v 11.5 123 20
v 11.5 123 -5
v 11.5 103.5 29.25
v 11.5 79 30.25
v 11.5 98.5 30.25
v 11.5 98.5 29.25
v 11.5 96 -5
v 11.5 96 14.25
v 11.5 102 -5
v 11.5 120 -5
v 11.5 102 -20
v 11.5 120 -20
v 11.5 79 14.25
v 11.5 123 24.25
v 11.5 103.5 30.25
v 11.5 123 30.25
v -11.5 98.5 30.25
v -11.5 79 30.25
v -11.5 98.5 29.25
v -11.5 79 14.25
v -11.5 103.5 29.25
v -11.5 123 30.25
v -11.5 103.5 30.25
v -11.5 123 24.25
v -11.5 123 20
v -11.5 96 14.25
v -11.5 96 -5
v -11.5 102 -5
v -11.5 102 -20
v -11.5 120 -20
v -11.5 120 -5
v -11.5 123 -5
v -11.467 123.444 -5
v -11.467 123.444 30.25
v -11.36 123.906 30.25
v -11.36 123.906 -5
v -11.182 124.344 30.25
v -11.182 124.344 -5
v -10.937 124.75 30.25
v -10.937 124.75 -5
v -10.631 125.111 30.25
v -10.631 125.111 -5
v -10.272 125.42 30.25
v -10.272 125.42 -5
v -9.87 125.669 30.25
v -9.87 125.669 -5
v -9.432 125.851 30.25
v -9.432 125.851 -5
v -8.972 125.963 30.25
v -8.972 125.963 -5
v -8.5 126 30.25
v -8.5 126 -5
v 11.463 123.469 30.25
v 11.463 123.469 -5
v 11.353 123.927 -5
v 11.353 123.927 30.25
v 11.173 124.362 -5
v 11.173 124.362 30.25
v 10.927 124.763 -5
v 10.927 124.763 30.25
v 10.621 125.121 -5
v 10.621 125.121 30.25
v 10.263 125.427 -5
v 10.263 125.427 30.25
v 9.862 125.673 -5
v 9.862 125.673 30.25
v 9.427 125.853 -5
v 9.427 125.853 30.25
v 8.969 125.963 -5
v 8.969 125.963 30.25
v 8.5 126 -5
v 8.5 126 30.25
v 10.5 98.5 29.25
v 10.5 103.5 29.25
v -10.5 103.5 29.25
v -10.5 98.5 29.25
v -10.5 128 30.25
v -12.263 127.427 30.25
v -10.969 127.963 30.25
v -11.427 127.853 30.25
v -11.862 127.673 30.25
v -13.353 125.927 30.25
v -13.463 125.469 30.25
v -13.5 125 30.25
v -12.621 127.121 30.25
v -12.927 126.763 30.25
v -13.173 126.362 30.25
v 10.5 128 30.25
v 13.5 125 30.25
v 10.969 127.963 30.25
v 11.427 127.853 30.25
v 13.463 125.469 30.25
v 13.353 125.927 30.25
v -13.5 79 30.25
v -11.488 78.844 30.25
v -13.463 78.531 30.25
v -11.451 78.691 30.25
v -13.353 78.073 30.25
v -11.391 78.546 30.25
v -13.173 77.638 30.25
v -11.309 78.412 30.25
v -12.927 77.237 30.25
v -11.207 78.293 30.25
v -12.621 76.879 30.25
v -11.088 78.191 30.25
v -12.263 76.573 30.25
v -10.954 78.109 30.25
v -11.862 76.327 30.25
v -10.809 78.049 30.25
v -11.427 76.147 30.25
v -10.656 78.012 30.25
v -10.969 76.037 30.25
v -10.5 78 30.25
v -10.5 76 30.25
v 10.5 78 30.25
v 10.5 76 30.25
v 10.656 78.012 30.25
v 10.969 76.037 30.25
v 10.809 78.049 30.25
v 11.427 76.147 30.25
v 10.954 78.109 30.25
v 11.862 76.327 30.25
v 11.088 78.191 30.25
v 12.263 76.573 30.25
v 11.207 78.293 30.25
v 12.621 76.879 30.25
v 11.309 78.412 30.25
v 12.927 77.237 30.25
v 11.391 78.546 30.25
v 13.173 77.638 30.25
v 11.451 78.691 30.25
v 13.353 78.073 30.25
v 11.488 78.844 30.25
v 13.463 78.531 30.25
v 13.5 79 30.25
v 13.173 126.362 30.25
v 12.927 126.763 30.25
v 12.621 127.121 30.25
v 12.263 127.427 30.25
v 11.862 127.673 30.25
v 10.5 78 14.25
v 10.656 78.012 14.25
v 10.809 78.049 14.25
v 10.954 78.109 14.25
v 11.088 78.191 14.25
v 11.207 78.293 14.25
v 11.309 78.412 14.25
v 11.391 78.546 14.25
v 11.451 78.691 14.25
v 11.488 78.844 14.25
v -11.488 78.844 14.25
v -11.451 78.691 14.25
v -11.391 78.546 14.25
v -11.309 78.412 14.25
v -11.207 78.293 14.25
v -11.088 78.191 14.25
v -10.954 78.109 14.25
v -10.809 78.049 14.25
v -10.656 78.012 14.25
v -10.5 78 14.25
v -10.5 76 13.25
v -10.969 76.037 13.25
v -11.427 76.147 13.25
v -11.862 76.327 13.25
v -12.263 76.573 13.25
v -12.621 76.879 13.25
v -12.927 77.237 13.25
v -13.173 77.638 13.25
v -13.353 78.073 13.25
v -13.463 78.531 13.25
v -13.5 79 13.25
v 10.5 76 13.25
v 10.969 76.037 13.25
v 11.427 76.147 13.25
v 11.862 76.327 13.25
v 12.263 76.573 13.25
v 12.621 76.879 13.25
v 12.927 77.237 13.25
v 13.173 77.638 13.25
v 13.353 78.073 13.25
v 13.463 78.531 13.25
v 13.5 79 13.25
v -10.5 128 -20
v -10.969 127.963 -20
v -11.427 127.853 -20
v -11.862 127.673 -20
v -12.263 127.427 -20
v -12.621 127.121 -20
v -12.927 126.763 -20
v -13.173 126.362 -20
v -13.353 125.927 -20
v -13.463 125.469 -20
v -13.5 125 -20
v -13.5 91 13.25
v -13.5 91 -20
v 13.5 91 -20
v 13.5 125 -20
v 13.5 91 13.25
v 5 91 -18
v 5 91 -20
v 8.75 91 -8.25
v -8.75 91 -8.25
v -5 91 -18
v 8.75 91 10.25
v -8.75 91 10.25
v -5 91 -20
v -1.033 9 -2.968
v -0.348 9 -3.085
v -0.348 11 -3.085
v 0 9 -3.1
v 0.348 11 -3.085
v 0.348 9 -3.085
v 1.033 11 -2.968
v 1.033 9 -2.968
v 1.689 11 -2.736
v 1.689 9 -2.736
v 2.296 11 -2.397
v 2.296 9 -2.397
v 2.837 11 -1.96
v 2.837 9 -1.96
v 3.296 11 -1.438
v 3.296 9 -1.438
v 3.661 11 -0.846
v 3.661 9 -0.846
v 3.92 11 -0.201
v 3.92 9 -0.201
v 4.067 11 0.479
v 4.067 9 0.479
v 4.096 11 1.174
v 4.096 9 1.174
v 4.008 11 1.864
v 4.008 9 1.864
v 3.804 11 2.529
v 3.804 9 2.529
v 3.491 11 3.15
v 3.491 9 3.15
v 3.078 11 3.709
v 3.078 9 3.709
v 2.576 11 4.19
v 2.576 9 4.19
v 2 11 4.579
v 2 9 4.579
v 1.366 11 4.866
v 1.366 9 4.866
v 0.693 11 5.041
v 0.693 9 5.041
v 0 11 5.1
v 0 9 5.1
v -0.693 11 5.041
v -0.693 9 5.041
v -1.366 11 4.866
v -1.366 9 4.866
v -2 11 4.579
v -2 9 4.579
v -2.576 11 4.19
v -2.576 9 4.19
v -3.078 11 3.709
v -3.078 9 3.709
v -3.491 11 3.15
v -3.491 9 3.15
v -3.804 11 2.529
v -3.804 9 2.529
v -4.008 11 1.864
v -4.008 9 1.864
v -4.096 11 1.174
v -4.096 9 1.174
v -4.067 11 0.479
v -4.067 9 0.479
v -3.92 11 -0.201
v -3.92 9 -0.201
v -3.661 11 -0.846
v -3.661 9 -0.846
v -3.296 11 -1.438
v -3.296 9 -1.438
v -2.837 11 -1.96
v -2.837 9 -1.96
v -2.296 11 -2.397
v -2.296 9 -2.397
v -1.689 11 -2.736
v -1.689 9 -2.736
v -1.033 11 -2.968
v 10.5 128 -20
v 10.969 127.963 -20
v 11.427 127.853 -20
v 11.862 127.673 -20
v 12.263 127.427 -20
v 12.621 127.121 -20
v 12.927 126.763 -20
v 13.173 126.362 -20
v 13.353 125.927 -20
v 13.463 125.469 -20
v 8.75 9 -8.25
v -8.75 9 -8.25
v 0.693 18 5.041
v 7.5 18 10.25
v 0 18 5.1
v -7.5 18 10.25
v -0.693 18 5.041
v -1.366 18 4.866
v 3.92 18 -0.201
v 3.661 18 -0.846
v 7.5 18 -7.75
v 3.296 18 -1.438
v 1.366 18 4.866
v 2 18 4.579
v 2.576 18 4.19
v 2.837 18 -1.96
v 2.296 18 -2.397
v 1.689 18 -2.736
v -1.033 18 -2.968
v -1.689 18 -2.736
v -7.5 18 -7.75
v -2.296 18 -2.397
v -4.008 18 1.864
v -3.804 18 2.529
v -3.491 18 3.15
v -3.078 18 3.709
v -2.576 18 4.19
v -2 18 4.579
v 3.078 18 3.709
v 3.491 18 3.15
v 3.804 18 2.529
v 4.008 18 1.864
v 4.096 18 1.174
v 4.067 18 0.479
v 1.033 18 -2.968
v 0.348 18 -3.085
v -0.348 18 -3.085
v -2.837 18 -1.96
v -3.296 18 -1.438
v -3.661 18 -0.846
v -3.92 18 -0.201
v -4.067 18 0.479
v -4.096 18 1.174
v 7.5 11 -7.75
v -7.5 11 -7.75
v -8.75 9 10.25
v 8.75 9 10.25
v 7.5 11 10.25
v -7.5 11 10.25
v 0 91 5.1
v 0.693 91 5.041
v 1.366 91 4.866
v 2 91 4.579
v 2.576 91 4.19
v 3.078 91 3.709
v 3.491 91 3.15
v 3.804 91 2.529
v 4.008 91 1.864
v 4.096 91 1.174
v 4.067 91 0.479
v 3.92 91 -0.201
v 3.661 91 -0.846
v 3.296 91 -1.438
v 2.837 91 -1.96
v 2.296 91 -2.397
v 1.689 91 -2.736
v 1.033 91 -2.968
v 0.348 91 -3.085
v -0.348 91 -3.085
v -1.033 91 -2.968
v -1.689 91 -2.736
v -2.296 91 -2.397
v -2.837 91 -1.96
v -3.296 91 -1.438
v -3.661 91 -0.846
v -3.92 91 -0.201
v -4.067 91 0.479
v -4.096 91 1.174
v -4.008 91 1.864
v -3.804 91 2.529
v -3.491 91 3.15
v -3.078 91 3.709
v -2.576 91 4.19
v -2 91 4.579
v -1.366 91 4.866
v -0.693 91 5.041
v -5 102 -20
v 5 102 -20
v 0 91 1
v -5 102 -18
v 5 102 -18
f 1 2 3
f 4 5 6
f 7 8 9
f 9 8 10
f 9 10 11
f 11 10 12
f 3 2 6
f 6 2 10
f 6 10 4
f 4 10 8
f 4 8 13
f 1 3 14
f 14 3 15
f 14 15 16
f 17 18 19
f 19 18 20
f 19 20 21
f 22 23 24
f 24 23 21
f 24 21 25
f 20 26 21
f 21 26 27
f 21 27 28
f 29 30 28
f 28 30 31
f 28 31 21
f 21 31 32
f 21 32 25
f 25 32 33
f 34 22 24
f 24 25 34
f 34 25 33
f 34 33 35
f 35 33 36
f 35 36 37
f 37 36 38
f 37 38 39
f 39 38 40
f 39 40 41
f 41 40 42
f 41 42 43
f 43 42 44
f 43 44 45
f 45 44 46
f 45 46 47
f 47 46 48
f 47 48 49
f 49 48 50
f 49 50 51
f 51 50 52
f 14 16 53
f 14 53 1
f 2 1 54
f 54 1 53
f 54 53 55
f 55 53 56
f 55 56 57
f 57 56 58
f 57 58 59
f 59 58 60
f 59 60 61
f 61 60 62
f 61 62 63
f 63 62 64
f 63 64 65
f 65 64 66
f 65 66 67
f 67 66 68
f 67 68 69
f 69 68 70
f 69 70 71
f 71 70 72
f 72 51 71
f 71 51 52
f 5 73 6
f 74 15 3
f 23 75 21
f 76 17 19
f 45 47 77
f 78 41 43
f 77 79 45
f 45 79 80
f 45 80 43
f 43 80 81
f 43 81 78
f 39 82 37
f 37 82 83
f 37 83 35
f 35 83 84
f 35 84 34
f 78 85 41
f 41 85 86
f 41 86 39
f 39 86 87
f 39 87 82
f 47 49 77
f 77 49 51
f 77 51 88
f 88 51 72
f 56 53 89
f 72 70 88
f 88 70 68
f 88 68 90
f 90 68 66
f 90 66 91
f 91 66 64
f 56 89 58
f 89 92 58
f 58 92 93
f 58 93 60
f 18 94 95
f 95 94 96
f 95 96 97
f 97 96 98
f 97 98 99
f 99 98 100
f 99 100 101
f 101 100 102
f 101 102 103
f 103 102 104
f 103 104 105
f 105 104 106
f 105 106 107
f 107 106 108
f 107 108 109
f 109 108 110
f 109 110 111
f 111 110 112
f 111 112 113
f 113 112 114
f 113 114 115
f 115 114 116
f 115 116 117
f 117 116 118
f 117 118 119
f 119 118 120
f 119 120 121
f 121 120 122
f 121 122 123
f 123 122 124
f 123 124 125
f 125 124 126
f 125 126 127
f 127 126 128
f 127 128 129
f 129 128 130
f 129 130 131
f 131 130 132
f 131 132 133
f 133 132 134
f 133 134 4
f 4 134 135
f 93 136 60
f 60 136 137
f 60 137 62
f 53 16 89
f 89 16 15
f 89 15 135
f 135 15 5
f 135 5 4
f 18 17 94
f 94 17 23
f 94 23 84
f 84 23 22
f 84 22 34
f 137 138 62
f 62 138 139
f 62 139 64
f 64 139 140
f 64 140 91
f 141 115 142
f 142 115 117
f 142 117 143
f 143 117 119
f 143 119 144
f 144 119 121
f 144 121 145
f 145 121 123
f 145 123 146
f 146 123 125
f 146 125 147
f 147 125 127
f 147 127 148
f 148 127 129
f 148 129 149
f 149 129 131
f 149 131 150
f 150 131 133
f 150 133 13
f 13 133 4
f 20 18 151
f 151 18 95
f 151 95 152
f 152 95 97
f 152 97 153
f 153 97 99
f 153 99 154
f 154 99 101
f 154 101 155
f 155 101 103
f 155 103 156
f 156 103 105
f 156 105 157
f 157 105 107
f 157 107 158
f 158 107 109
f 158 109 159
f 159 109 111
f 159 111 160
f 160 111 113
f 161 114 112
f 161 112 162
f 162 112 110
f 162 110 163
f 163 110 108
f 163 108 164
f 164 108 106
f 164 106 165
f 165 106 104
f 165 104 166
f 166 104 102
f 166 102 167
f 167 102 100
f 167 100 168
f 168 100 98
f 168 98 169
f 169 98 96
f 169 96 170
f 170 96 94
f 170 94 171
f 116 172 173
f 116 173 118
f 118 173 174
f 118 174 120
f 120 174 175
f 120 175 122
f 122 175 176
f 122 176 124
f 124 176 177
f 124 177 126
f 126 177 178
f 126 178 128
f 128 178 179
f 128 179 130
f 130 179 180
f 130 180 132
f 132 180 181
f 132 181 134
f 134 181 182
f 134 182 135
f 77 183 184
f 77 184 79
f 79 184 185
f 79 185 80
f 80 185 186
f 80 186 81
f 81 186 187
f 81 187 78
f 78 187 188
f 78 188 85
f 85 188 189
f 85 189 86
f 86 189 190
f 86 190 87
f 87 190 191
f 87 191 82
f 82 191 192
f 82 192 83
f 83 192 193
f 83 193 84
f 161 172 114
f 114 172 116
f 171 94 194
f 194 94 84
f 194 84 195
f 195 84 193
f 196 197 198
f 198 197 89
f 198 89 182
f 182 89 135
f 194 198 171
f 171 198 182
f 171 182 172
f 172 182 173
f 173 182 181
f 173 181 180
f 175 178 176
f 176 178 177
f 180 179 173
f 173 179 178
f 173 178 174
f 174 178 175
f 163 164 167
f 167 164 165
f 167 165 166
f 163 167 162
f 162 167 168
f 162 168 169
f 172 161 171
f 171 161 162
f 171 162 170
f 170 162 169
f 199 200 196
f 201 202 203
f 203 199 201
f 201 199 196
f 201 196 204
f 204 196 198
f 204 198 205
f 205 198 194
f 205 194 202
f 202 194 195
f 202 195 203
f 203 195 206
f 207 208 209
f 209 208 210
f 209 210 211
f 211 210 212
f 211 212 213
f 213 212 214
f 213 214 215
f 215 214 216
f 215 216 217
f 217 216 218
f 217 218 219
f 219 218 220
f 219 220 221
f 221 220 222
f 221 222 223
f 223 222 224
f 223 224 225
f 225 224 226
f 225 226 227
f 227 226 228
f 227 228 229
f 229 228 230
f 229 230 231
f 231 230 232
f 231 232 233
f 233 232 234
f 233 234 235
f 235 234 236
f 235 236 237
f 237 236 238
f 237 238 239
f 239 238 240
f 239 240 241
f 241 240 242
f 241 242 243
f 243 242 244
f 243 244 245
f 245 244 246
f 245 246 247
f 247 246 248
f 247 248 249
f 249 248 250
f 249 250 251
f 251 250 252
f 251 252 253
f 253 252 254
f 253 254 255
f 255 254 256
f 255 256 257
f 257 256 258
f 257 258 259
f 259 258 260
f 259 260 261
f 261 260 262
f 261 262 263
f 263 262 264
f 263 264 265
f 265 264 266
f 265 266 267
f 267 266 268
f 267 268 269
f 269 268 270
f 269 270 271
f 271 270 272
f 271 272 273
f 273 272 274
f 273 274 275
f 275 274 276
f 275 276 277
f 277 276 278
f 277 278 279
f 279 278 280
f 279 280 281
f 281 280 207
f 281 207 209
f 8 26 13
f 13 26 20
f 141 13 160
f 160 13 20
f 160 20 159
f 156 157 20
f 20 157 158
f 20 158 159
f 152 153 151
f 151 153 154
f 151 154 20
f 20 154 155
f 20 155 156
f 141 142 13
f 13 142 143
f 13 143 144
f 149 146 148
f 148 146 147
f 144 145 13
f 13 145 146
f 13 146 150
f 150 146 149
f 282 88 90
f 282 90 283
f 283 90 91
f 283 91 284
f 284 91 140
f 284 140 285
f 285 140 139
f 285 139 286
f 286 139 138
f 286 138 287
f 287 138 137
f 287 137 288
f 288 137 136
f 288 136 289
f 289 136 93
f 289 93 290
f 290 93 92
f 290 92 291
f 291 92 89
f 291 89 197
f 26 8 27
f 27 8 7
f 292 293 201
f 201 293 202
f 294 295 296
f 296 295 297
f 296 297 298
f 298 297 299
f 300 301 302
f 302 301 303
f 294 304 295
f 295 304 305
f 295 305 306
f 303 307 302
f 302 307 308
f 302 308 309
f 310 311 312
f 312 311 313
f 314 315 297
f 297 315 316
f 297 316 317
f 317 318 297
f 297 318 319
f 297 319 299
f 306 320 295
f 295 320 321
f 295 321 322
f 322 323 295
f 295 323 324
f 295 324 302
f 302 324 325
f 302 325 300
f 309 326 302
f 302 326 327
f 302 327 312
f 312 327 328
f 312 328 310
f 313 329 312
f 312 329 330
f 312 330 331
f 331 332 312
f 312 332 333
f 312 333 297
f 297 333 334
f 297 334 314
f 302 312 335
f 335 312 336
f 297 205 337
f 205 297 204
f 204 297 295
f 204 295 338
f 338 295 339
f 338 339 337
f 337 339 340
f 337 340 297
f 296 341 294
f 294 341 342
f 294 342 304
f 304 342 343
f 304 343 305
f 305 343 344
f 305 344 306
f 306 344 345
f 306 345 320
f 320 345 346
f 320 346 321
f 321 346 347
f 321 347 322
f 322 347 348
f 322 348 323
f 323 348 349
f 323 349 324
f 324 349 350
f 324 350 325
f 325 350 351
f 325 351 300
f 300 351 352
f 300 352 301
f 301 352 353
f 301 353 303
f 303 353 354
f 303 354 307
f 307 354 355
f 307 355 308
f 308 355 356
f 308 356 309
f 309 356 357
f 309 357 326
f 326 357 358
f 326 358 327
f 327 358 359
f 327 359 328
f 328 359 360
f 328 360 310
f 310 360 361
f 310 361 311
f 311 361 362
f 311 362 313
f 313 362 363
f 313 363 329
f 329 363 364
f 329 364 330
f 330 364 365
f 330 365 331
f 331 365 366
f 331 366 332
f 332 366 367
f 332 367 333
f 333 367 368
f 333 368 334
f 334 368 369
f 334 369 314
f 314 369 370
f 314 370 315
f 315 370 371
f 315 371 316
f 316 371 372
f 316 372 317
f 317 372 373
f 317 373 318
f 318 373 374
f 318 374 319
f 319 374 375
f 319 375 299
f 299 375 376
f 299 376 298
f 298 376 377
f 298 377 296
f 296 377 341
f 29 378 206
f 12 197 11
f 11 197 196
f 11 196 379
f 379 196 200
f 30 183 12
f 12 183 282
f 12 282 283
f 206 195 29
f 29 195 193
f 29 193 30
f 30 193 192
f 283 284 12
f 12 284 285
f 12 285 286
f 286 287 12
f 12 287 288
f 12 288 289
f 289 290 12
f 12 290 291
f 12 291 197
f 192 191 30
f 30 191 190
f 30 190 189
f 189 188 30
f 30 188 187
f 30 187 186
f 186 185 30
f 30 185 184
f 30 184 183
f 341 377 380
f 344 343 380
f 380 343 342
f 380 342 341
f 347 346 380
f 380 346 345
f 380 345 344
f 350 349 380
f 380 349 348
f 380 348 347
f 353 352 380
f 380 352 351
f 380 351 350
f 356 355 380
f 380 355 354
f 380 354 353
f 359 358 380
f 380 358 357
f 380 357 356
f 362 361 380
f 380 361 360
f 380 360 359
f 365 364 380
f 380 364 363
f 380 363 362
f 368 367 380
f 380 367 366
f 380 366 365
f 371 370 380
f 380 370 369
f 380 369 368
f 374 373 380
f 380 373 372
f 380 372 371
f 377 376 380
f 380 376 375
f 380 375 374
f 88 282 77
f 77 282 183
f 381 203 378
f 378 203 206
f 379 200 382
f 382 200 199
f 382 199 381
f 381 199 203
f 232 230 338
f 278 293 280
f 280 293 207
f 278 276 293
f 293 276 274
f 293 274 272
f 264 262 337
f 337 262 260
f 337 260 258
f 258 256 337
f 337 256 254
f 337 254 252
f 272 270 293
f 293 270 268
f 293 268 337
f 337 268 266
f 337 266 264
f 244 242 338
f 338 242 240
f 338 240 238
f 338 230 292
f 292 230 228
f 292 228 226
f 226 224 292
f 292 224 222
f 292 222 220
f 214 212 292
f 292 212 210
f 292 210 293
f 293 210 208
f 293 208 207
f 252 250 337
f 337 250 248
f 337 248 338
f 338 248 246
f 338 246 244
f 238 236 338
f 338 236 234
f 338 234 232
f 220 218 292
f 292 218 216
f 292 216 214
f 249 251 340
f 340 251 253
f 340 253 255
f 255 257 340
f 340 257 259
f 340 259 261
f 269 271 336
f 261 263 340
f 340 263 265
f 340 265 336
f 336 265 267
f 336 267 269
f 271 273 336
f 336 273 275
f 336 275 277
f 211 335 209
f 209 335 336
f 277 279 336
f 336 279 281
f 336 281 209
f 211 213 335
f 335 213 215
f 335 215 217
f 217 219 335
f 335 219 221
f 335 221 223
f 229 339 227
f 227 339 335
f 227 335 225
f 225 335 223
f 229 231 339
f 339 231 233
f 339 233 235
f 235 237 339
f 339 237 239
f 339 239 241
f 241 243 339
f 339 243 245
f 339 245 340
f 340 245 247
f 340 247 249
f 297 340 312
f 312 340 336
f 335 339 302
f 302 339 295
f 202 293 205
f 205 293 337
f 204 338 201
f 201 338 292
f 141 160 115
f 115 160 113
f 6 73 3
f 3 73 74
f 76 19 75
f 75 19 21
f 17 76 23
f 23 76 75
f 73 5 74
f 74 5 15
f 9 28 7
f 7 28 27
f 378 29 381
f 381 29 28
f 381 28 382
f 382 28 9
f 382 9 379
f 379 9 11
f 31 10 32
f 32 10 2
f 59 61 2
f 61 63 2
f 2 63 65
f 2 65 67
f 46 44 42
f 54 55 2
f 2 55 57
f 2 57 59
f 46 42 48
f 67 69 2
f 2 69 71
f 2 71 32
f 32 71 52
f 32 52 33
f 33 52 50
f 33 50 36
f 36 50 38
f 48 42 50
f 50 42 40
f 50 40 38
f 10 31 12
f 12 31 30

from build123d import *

# Parameters (mm, degrees)
SKETCH1_W                = 20
SKETCH1_H                = 20
SKETCH1_R                = 4
SKETCH1_H_2              = 10
BOSS_EXTRUDE2_DEPTH      = 2
SKETCH2_W                = 45
SKETCH2_H                = 60
SKETCH2_W_2              = 43
SKETCH2_H_2              = 58
BOSS_EXTRUDE3_DEPTH      = 4
SKETCH6_W                = 45
SKETCH6_H                = 30
BOSS_EXTRUDE4_DEPTH      = 2
CUT_EXTRUDE4_DEPTH       = 4
BOSS_EXTRUDE5_DEPTH      = 7
BOSS_EXTRUDE5_2_DEPTH    = 7
BOSS_EXTRUDE5_3_DEPTH    = 7
SKETCH11_W               = 19
SKETCH11_H               = 19
BOSS_EXTRUDE6_DEPTH      = 2
SKETCH14_R               = 4
CUT_EXTRUDE7_DEPTH       = 19
SKETCH15_W               = 1
SKETCH15_H               = 17
SKETCH15_H_2             = 1
BOSS_EXTRUDE7_DEPTH      = 80
SKETCH16_W               = 16.5
SKETCH16_H               = 16.5
BOSS_EXTRUDE8_DEPTH      = 80
SKETCH17_R               = 4
CUT_EXTRUDE8_DEPTH       = 193
SKETCH18_W               = 105.72576136
SKETCH18_H               = 91
CUT_EXTRUDE9_DEPTH       = 193
SKETCH19_W               = 10.5
SKETCH19_H               = 2
CUT_EXTRUDE10_DEPTH      = 193
SKETCH20_W               = 16.5
SKETCH20_H               = 16.5
SKETCH20_R               = 4
BOSS_EXTRUDE10_DEPTH     = 80
SKETCH21_W               = 16.5
SKETCH21_H               = 16.5
SKETCH21_R               = 4
CUT_EXTRUDE11_DEPTH      = 80
SKETCH22_W               = 14
SKETCH22_H               = 5
CUT_EXTRUDE12_DEPTH      = 16
SKETCH24_W               = 16.5
SKETCH24_H               = 80
SKETCH24_W_2             = 14
SKETCH24_H_2             = 5
BOSS_EXTRUDE11_DEPTH     = 2
SKETCH25_R               = 4.1
SKETCH25_R_2             = 4
CUT_EXTRUDE14_DEPTH      = 103
SKETCH26_W               = 35
SKETCH26_H               = 40
BOSS_EXTRUDE12_DEPTH     = 5
SKETCH27_W               = 23
SKETCH27_H               = 5.75
CUT_EXTRUDE17_DEPTH      = 5
SKETCH28_W               = 2
SKETCH28_H               = 40
BOSS_EXTRUDE13_DEPTH     = 32
SKETCH29_W               = 4
SKETCH29_H               = 40
CUT_EXTRUDE18_DEPTH      = 32
SKETCH30_W               = 4
SKETCH30_H               = 40
CUT_EXTRUDE19_DEPTH      = 32
SKETCH31_W               = 10
SKETCH31_H               = 2
CUT_EXTRUDE20_DEPTH      = 32
SKETCH34_W               = 44.25
SKETCH34_H               = 2
BOSS_EXTRUDE15_DEPTH     = 23
FILLET1_R                = 3
FILLET2_R                = 3
FILLET3_R                = 3
FILLET4_R                = 3
BOSS_EXTRUDE16_DEPTH     = 20
SKETCH36_W               = 10
SKETCH36_H               = 2
BOSS_EXTRUDE17_DEPTH     = 23
SKETCH37_W               = 27
SKETCH37_H               = 20
CUT_EXTRUDE23_DEPTH      = 1
SKETCH42_W               = 1
SKETCH42_H               = 5
BOSS_EXTRUDE22_DEPTH     = 2
SKETCH44_W               = 1
SKETCH44_H               = 2
BOSS_EXTRUDE23_DEPTH     = 2
SKETCH46_W               = 1
SKETCH46_H               = 2
BOSS_EXTRUDE24_DEPTH     = 3
SKETCH47_W               = 16.5
SKETCH47_H               = 18.5
SKETCH47_R               = 4.1
BOSS_EXTRUDE25_DEPTH     = 2
SKETCH50_W               = 14
SKETCH50_H               = 18
SKETCH50_R               = 4.1
CUT_EXTRUDE26_DEPTH      = 2
SKETCH51_W               = 18
SKETCH51_H               = 7
CUT_EXTRUDE27_DEPTH      = 0.5
SKETCH52_W               = 18
SKETCH52_H               = 7
CUT_EXTRUDE28_DEPTH      = 0.5
SKETCH53_W               = 18.5
SKETCH53_H               = 82
BOSS_EXTRUDE26_DEPTH     = 0.5
SKETCH54_W               = 18.5
SKETCH54_H               = 82
BOSS_EXTRUDE27_DEPTH     = 0.5
BOSS_EXTRUDE30_DEPTH     = 5
CUT_EXTRUDE31_REACH      = 138.104
SKETCH61_W               = 23
SKETCH61_H               = 5
CUT_EXTRUDE32_DEPTH      = 25
CUT_EXTRUDE32_DEPTH_BACK = 5
SKETCH62_W               = 6.75
SKETCH62_H               = 5
BOSS_EXTRUDE31_DEPTH     = 10.25
BOSS_EXTRUDE32_DEPTH     = 6
SKETCH65_W               = 23
SKETCH65_H               = 2
BOSS_EXTRUDE33_DEPTH     = 6
FILLET5_R                = 3
FILLET6_R                = 3
FILLET7_R                = 1
FILLET8_R                = 1
SKETCH66_W               = 1
SKETCH66_H               = 1
CUT_EXTRUDE33_DEPTH      = 5
BOSS_EXTRUDE34_DEPTH     = 6
SKETCH68_W               = 17
SKETCH68_H               = 15
BOSS_EXTRUDE35_DEPTH     = 6
BOSS_EXTRUDE37_DEPTH     = 15
SKETCH72_W               = 3
SKETCH72_H               = 15
BOSS_EXTRUDE38_DEPTH     = 3


# Read off the part's stored shape, not the designer's step: Boss-Extrude16, Boss-Extrude32
with BuildPart() as part:
    # Sketch1 → Boss-Extrude2 (new body)
    # profile 1 of 6: a face of its own
    with BuildSketch(Plane(origin=(0, 0, 0), x_dir=(1, 0, 0), z_dir=(0, 1, 0))):
        Polygon((-22.5, 10), (-10, 10), (10, 10), (22.5, 10), (22.5, 70), (-22.5, 70), align=None)
    # profile 2 of 6: a face of its own
    with BuildSketch(Plane(origin=(0, 0, 0), x_dir=(1, 0, 0), z_dir=(0, 1, 0))):
        Polygon((-22.5, 10), (-10, -10), (-10, 10), align=None)
    # profile 3 of 6: a face of its own
    with BuildSketch(Plane(origin=(0, 0, 0), x_dir=(1, 0, 0), z_dir=(0, 1, 0))):
        Polygon((10, 10), (10, -10), (22.5, 10), align=None)
    # profile 4 of 6: a face of its own
    with BuildSketch(Plane(origin=(0, 0, 0), x_dir=(1, 0, 0), z_dir=(0, 1, 0))):
        Rectangle(SKETCH1_W, SKETCH1_H)
        Circle(SKETCH1_R, mode=Mode.SUBTRACT)
    # profile 5 of 6: a face of its own
    with BuildSketch(Plane(origin=(0, 0, 0), x_dir=(1, 0, 0), z_dir=(0, 1, 0))):
        Circle(SKETCH1_R)
    # profile 6 of 6: a face of its own
    with BuildSketch(Plane(origin=(0, 0, 0), x_dir=(1, 0, 0), z_dir=(0, 1, 0))):
        with Locations((0, -15)):
            Rectangle(SKETCH1_W, SKETCH1_H_2)
    extrude(amount=BOSS_EXTRUDE2_DEPTH)

    # Sketch2 → Boss-Extrude3 (add)
    with BuildSketch(Plane(origin=(0, 2, 0), x_dir=(1, 0, 0), z_dir=(0, 1, 0))):
        with Locations((0, 40)):
            Rectangle(SKETCH2_W, SKETCH2_H)
        with Locations((0, 40)):
            Rectangle(SKETCH2_W_2, SKETCH2_H_2, mode=Mode.SUBTRACT)
    extrude(amount=BOSS_EXTRUDE3_DEPTH)

    # Sketch6 → Boss-Extrude4 (add)
    with BuildSketch(Plane(origin=(0, 2, 0), x_dir=(1, 0, 0), z_dir=(0, 1, 0))):
        with Locations((0, -5)):
            Rectangle(SKETCH6_W, SKETCH6_H)
    extrude(amount=-BOSS_EXTRUDE4_DEPTH)

    # Sketch7 → Cut-Extrude4 (cut)
    with BuildSketch(Plane(origin=(0, 2, 0), x_dir=(1, 0, 0), z_dir=(0, 1, 0))):
        with BuildLine():
            Line((9.5, 9.5), (-9.5, 9.5))
            Line((-9.5, 9.5), (-9.5, 2.122498999))
            ThreePointArc((-9.5, 2.122498999), (0, 9), (9.5, 2.122498999))
            Line((9.5, 2.122498999), (9.5, 9.5))
        make_face()
        with BuildLine():
            ThreePointArc((-5.267826876, -9.5), (-7.858215886, -7.184532568), (-9.5, -4.122498999))
            Line((-9.5, -4.122498999), (-9.5, -9.5))
            Line((-9.5, -9.5), (-5.267826876, -9.5))
        make_face()
        with BuildLine():
            Line((9.5, -9.5), (9.5, -4.122498999))
            ThreePointArc((9.5, -4.122498999), (7.858215886, -7.184532568), (5.267826876, -9.5))
            Line((5.267826876, -9.5), (9.5, -9.5))
        make_face()
    extrude(amount=-CUT_EXTRUDE4_DEPTH, mode=Mode.SUBTRACT)


with BuildPart() as body_2:
    # Sketch8 → Boss-Extrude5 (new body)
    with BuildSketch(Plane(origin=(0, 2, 0), x_dir=(1, 0, 0), z_dir=(0, 1, 0))):
        with BuildLine():
            Line((9.5, 2.122498999), (9.5, 9.5))
            Line((9.5, 9.5), (-9.5, 9.5))
            Line((-9.5, 9.5), (-9.5, 2.122498999))
            ThreePointArc((-9.5, 2.122498999), (0, 9), (9.5, 2.122498999))
        make_face()
    extrude(amount=BOSS_EXTRUDE5_DEPTH)



with BuildPart() as body_3:
    # Sketch8 → Boss-Extrude5 2 (new body)
    with BuildSketch(Plane(origin=(0, 2, 0), x_dir=(1, 0, 0), z_dir=(0, 1, 0))):
        with BuildLine():
            Line((-9.5, -9.5), (-5.267826876, -9.5))
            ThreePointArc((-5.267826876, -9.5), (-7.858215886, -7.184532568), (-9.5, -4.122498999))
            Line((-9.5, -4.122498999), (-9.5, -9.5))
        make_face()
    extrude(amount=BOSS_EXTRUDE5_2_DEPTH)


with BuildPart() as body_4:
    # Sketch8 → Boss-Extrude5 3 (new body)
    with BuildSketch(Plane(origin=(0, 2, 0), x_dir=(1, 0, 0), z_dir=(0, 1, 0))):
        with BuildLine():
            Line((9.5, -9.5), (9.5, -4.122498999))
            ThreePointArc((9.5, -4.122498999), (7.858215886, -7.184532568), (5.267826876, -9.5))
            Line((5.267826876, -9.5), (9.5, -9.5))
        make_face()
    extrude(amount=BOSS_EXTRUDE5_3_DEPTH)


with BuildPart() as body_2_1:
    add(body_2.part)

    add(body_3.part)  # Boss-Extrude6 merges body 3

    add(body_4.part)  # Boss-Extrude6 merges body 4
    # Sketch11 → Boss-Extrude6 (add)
    with BuildSketch(Plane(origin=(0, 9, 0), x_dir=(1, 0, 0), z_dir=(0, 1, 0))):
        Rectangle(SKETCH11_W, SKETCH11_H)
    extrude(amount=BOSS_EXTRUDE6_DEPTH)


with BuildPart() as cut_extrude7_tool:
    # Sketch14 → Cut-Extrude7 (new body)
    with BuildSketch(Plane.XZ):
        with Locations(Location((0, 1, 0), (0, 0, 270))):
            Circle(SKETCH14_R)
    extrude(amount=-CUT_EXTRUDE7_DEPTH)


with BuildPart() as part_1:
    add(part.part)

    # Cut-Extrude7: cut by cut_extrude7_tool
    add(cut_extrude7_tool.part, mode=Mode.SUBTRACT)


with BuildPart() as body_2_2:
    add(body_2_1.part)

    # Cut-Extrude7: cut by cut_extrude7_tool
    add(cut_extrude7_tool.part, mode=Mode.SUBTRACT)

    # Sketch15 → Boss-Extrude7 (add)
    with BuildSketch(Plane(origin=(0, 11, 0), x_dir=(1, 0, 0), z_dir=(0, 1, 0))):
        Polygon((-8.5, 8.5), (8.5, 8.5), (8.5, 9.5), (-9.5, 9.5), (-9.5, -9.5), (8.5, -9.5), (8.5, -8.5), (-8.5, -8.5), align=None)
        with Locations((9, 0)):
            Rectangle(SKETCH15_W, SKETCH15_H)
        with Locations((9, 9)):
            Rectangle(SKETCH15_W, SKETCH15_H_2)
        with Locations((9, -9)):
            Rectangle(SKETCH15_W, SKETCH15_H_2)
    extrude(amount=BOSS_EXTRUDE7_DEPTH)


with BuildPart() as body_3_2:
    # Sketch16 → Boss-Extrude8 (new body)
    with BuildSketch(Plane(origin=(0, 91, 0), x_dir=(1, 0, 0), z_dir=(0, 1, 0))):
        Rectangle(SKETCH16_W, SKETCH16_H)
    extrude(amount=BOSS_EXTRUDE8_DEPTH)

    # Sketch17 → Cut-Extrude8 (cut)
    with BuildSketch(Plane.XZ):
        with Locations(Location((0, 1, 0), (0, 0, 270))):
            Circle(SKETCH17_R)
    extrude(amount=-CUT_EXTRUDE8_DEPTH, mode=Mode.SUBTRACT)

    # Sketch20 → Boss-Extrude10 (add)
    with BuildSketch(Plane.XZ.offset(-91)):
        Rectangle(SKETCH20_W, SKETCH20_H)
        with Locations(Location((0, 1, 0), (0, 0, 270))):
            Circle(SKETCH20_R, mode=Mode.SUBTRACT)
    extrude(amount=BOSS_EXTRUDE10_DEPTH)

    # Sketch21 → Cut-Extrude11 (cut)
    with BuildSketch(Plane(origin=(0, 171, 0), x_dir=(1, 0, 0), z_dir=(0, 1, 0))):
        Rectangle(SKETCH21_W, SKETCH21_H)
        with Locations(Location((0, -1, 0), (0, 0, 90))):
            Circle(SKETCH21_R, mode=Mode.SUBTRACT)
    extrude(amount=-CUT_EXTRUDE11_DEPTH, mode=Mode.SUBTRACT)

    # Sketch22 → Cut-Extrude12 (cut)
    with BuildSketch(Plane.XY.offset(8.25)):
        with Locations((0, 15.5)):
            Rectangle(SKETCH22_W, SKETCH22_H)
    extrude(amount=-CUT_EXTRUDE12_DEPTH, mode=Mode.SUBTRACT)

    # Sketch24 → Boss-Extrude11 (add)
    with BuildSketch(Plane.XY.offset(8.25)):
        with Locations((0, 51)):
            Rectangle(SKETCH24_W, SKETCH24_H)
        with Locations((0, 15.5)):
            Rectangle(SKETCH24_W_2, SKETCH24_H_2, mode=Mode.SUBTRACT)
    extrude(amount=BOSS_EXTRUDE11_DEPTH)

    # Sketch25 → Cut-Extrude14 (cut)
    with BuildSketch(Plane(origin=(0, 91, 0), x_dir=(1, 0, 0), z_dir=(0, 1, 0))):
        with Locations(Location((0, -1, 0), (0, 0, 270))):
            Circle(SKETCH25_R)
        with Locations((0, -1)):
            Circle(SKETCH25_R_2, mode=Mode.SUBTRACT)
    extrude(amount=-CUT_EXTRUDE14_DEPTH, mode=Mode.SUBTRACT)

    # Sketch26 → Boss-Extrude12 (add)
    with BuildSketch(Plane(origin=(0, 91, 0), x_dir=(1, 0, 0), z_dir=(0, 1, 0))):
        Rectangle(SKETCH26_W, SKETCH26_H)
    extrude(amount=BOSS_EXTRUDE12_DEPTH)

    # Sketch27 → Cut-Extrude17 (cut)
    with BuildSketch(Plane(origin=(0, 96, 0), x_dir=(1, 0, 0), z_dir=(0, 1, 0))):
        with Locations((0, -17.125)):
            Rectangle(SKETCH27_W, SKETCH27_H)
    extrude(amount=-CUT_EXTRUDE17_DEPTH, mode=Mode.SUBTRACT)

    # Sketch28 → Boss-Extrude13 (add)
    with BuildSketch(Plane(origin=(0, 96, 0), x_dir=(1, 0, 0), z_dir=(0, 1, 0))):
        with Locations((12.5, 0)):
            Rectangle(SKETCH28_W, SKETCH28_H)
        with Locations((-12.5, 0)):
            Rectangle(SKETCH28_W, SKETCH28_H)
    extrude(amount=BOSS_EXTRUDE13_DEPTH)

    # Sketch29 → Cut-Extrude18 (cut)
    with BuildSketch(Plane(origin=(0, 96, 0), x_dir=(1, 0, 0), z_dir=(0, 1, 0))):
        with Locations((-15.5, 0)):
            Rectangle(SKETCH29_W, SKETCH29_H)
    extrude(amount=-CUT_EXTRUDE18_DEPTH, mode=Mode.SUBTRACT)

    # Sketch30 → Cut-Extrude19 (cut)
    with BuildSketch(Plane(origin=(0, 96, 0), x_dir=(1, 0, 0), z_dir=(0, 1, 0))):
        with Locations((15.5, 0)):
            Rectangle(SKETCH30_W, SKETCH30_H)
    extrude(amount=-CUT_EXTRUDE19_DEPTH, mode=Mode.SUBTRACT)

    # Sketch31 → Cut-Extrude20 (cut)
    with BuildSketch(Plane(origin=(0, 96, 0), x_dir=(1, 0, 0), z_dir=(0, 1, 0))):
        with Locations((0, 19)):
            Rectangle(SKETCH31_W, SKETCH31_H)
    extrude(amount=-CUT_EXTRUDE20_DEPTH, mode=Mode.SUBTRACT)

    # Sketch34 → Boss-Extrude15 (add)
    with BuildSketch(Plane.ZY.offset(-11.5)):
        with Locations((2.125, 127)):
            Rectangle(SKETCH34_W, SKETCH34_H)
    extrude(amount=BOSS_EXTRUDE15_DEPTH)

    # Fillet1
    fillet1_edges = [body_3_2.edges().sort_by_distance(p)[0] for p in [
        (-13.5, 128, 0),
    ]]
    fillet(fillet1_edges, radius=FILLET1_R)

    # Fillet2
    fillet2_edges = [body_3_2.edges().sort_by_distance(p)[0] for p in [
        (13.5, 128, 0),
    ]]
    fillet(fillet2_edges, radius=FILLET2_R)

    # Fillet3
    # the kernel refuses this fillet: 3 mm, written as the material it adds along each edge
    with BuildSketch(Plane(origin=(-11.5, 126, 27.5), x_dir=(1, 0, 0), z_dir=(0, 0, -1))) as fillet3_piece_1_section:
        with BuildLine():
            CenterArc((FILLET3_R, FILLET3_R), FILLET3_R, 180, 90)
            Line((0, FILLET3_R), (0, 0))
            Line((0, 0), (FILLET3_R, 0))
        make_face()
    fillet3_piece_1 = extrude(amount=47.5, mode=Mode.PRIVATE)
    fillet3_piece_1 = split(fillet3_piece_1, bisect_by=Plane(origin=(-10.759146849, 125.389580611, 24.25), z_dir=(0, 0, -1)), keep=Keep.TOP, mode=Mode.PRIVATE)
    fillet3_piece_1 = split(fillet3_piece_1, bisect_by=Plane(origin=(-11.5, 125.389580611, 22.125), z_dir=(1, 0, 0)), keep=Keep.TOP, mode=Mode.PRIVATE)
    fillet3_piece_1 = split(fillet3_piece_1, bisect_by=Plane(origin=(-10.759146849, 125.389580611, 20), z_dir=(0, 0, 1)), keep=Keep.TOP, mode=Mode.PRIVATE)
    add(fillet3_piece_1)
    with BuildSketch(Plane(origin=(-11.5, 126, 20), x_dir=(1, 0, 0), z_dir=(0, 0, -1))) as fillet3_piece_2_section:
        with BuildLine():
            CenterArc((FILLET3_R, FILLET3_R), FILLET3_R, 180, 90)
            Line((0, FILLET3_R), (0, 0))
            Line((0, 0), (FILLET3_R, 0))
        make_face()
    fillet3_piece_2 = extrude(amount=40, mode=Mode.PRIVATE)
    fillet3_piece_2 = split(fillet3_piece_2, bisect_by=Plane(origin=(-11.5, 125.389580611, 0), z_dir=(1, 0, 0)), keep=Keep.TOP, mode=Mode.PRIVATE)
    add(fillet3_piece_2)

    # Fillet4
    # the kernel refuses this fillet: 3 mm, written as the material it adds along each edge
    with BuildSketch(Plane(origin=(11.5, 126, 27.5), x_dir=(0, -1, 0), z_dir=(0, 0, -1))) as fillet4_piece_1_section:
        with BuildLine():
            CenterArc((FILLET4_R, FILLET4_R), FILLET4_R, 180, 90)
            Line((0, FILLET4_R), (0, 0))
            Line((0, 0), (FILLET4_R, 0))
        make_face()
    fillet4_piece_1 = extrude(amount=47.5, mode=Mode.PRIVATE)
    fillet4_piece_1 = split(fillet4_piece_1, bisect_by=Plane(origin=(10.759146849, 125.389580611, 20), z_dir=(0, 0, 1)), keep=Keep.TOP, mode=Mode.PRIVATE)
    fillet4_piece_1 = split(fillet4_piece_1, bisect_by=Plane(origin=(11.5, 125.389580611, 22.125), z_dir=(-1, 0, 0)), keep=Keep.TOP, mode=Mode.PRIVATE)
    fillet4_piece_1 = split(fillet4_piece_1, bisect_by=Plane(origin=(10.759146849, 125.389580611, 24.25), z_dir=(0, 0, -1)), keep=Keep.TOP, mode=Mode.PRIVATE)
    add(fillet4_piece_1)
    with BuildSketch(Plane(origin=(11.5, 126, 20), x_dir=(0, -1, 0), z_dir=(0, 0, -1))) as fillet4_piece_2_section:
        with BuildLine():
            CenterArc((FILLET4_R, FILLET4_R), FILLET4_R, 180, 90)
            Line((0, FILLET4_R), (0, 0))
            Line((0, 0), (FILLET4_R, 0))
        make_face()
    fillet4_piece_2 = extrude(amount=40, mode=Mode.PRIVATE)
    fillet4_piece_2 = split(fillet4_piece_2, bisect_by=Plane(origin=(11.5, 125.389580611, 0), z_dir=(-1, 0, 0)), keep=Keep.TOP, mode=Mode.PRIVATE)
    add(fillet4_piece_2)

    # Boss-Extrude16 outline → Boss-Extrude16 (add)
    with BuildSketch(Plane.XZ.offset(-91)):
        Polygon((11.5, 20), (11.5, 14.25), (-11.5, 14.25), (-11.5, 20), (-13.5, 20), (-13.5, 12.25), (13.5, 12.25), (13.5, 20), align=None)
    extrude(amount=BOSS_EXTRUDE16_DEPTH)

    # Sketch36 → Boss-Extrude17 (add)
    with BuildSketch(Plane.ZY.offset(-11.5)):
        with Locations((19.25, 72)):
            Rectangle(SKETCH36_W, SKETCH36_H)
    extrude(amount=BOSS_EXTRUDE17_DEPTH)

    # Sketch37 → Cut-Extrude23 (cut)
    with BuildSketch(Plane(origin=(0, 0, 12.25), x_dir=(-1, 0, 0), z_dir=(0, 0, -1))):
        with Locations((0, 81)):
            Rectangle(SKETCH37_W, SKETCH37_H)
    extrude(amount=-CUT_EXTRUDE23_DEPTH, mode=Mode.SUBTRACT)

    # Sketch47 → Boss-Extrude25 (add)
    with BuildSketch(Plane.XZ.offset(-11)):
        with Locations((0, 1)):
            Rectangle(SKETCH47_W, SKETCH47_H)
        with Locations(Location((0, 1, 0), (0, 0, 90))):
            Circle(SKETCH47_R, mode=Mode.SUBTRACT)
    extrude(amount=BOSS_EXTRUDE25_DEPTH)

    # Sketch50 → Cut-Extrude26 (cut)
    with BuildSketch(Plane(origin=(0, 13, 0), x_dir=(1, 0, 0), z_dir=(0, 1, 0))):
        with Locations((0, -1.25)):
            Rectangle(SKETCH50_W, SKETCH50_H)
        with Locations(Location((0, -1, 0), (0, 0, 270))):
            Circle(SKETCH50_R, mode=Mode.SUBTRACT)
    extrude(amount=-CUT_EXTRUDE26_DEPTH, mode=Mode.SUBTRACT)

    # Sketch51 → Cut-Extrude27 (cut)
    with BuildSketch(Plane(origin=(-7, 0, 0), x_dir=(0, 0, -1), z_dir=(1, 0, 0))):
        with Locations((-1.25, 14.5)):
            Rectangle(SKETCH51_W, SKETCH51_H)
    extrude(amount=-CUT_EXTRUDE27_DEPTH, mode=Mode.SUBTRACT)

    # Sketch52 → Cut-Extrude28 (cut)
    with BuildSketch(Plane.ZY.offset(-7)):
        with Locations((1.25, 14.5)):
            Rectangle(SKETCH52_W, SKETCH52_H)
    extrude(amount=-CUT_EXTRUDE28_DEPTH, mode=Mode.SUBTRACT)

    # Sketch53 → Boss-Extrude26 (add)
    with BuildSketch(Plane.ZY.offset(8.25)):
        with Locations((1, 50)):
            Rectangle(SKETCH53_W, SKETCH53_H)
    extrude(amount=BOSS_EXTRUDE26_DEPTH)

    # Sketch54 → Boss-Extrude27 (add)
    with BuildSketch(Plane(origin=(8.25, 0, 0), x_dir=(0, 0, -1), z_dir=(1, 0, 0))):
        with Locations((-1, 50)):
            Rectangle(SKETCH54_W, SKETCH54_H)
    extrude(amount=BOSS_EXTRUDE27_DEPTH)

    # Sketch59 → Boss-Extrude30 (add)
    with BuildSketch(Plane(origin=(0, 73, 0), x_dir=(1, 0, 0), z_dir=(0, 1, 0))):
        Polygon((-11.5, -20), (-11.5, -24.25), (11.5, -24.25), (11.5, -20), (11.5, -14.25), (-11.5, -14.25), align=None)
    extrude(amount=BOSS_EXTRUDE30_DEPTH)

    # Cut-Extrude31: up to this face of the body (flat: up to its plane)
    cut_extrude31_end = Plane(body_3_2.part.faces().sort_by_distance((0, 81, 13.25))[0])
    # Sketch61 → Cut-Extrude31 (cut, up to the picked face)
    with BuildSketch(Plane.XY.offset(24.25), mode=Mode.PRIVATE) as cut_extrude31_sk1:
        with Locations((0, 73.5)):
            Rectangle(SKETCH61_W, SKETCH61_H)
    cut_extrude31_tool1 = split(extrude(cut_extrude31_sk1.sketch, amount=-CUT_EXTRUDE31_REACH, mode=Mode.PRIVATE), bisect_by=cut_extrude31_end, keep=Keep.BOTH, mode=Mode.PRIVATE)
    add(cut_extrude31_tool1.solids().sort_by(Axis((0, 73.5, 24.25), (0, 0, -1)))[0], mode=Mode.SUBTRACT)

    # Sketch62 → Cut-Extrude32 (cut, two sides: drawn at the far end of the back side and taken through both)
    with BuildSketch(Plane(origin=(-11.5, 0, 0), x_dir=(0, 0, -1), z_dir=(1, 0, 0)).offset(-CUT_EXTRUDE32_DEPTH_BACK)):
        with Locations((-16.625, 73.5)):
            Rectangle(SKETCH62_W, SKETCH62_H)
    extrude(amount=CUT_EXTRUDE32_DEPTH + CUT_EXTRUDE32_DEPTH_BACK, mode=Mode.SUBTRACT)



with BuildPart() as cut_extrude9_tool:
    # Sketch18 → Cut-Extrude9 (new body)
    with BuildSketch(Plane.ZY.offset(22.5)):
        with Locations((-43.36288068, 45.5)):
            Rectangle(SKETCH18_W, SKETCH18_H)
    extrude(amount=-CUT_EXTRUDE9_DEPTH)


with BuildPart() as part_2:
    add(part_1.part)

    # Cut-Extrude9: cut by cut_extrude9_tool
    add(cut_extrude9_tool.part, mode=Mode.SUBTRACT)

    # Sketch19 → Cut-Extrude10 (cut)
    with BuildSketch(Plane.ZY.offset(22.5)):
        with Locations((14.75, 1)):
            Rectangle(SKETCH19_W, SKETCH19_H)
    extrude(amount=-CUT_EXTRUDE10_DEPTH, mode=Mode.SUBTRACT)


with BuildPart() as body_2_3:
    add(body_2_2.part)

    # Cut-Extrude9: cut by cut_extrude9_tool
    add(cut_extrude9_tool.part, mode=Mode.SUBTRACT)


with BuildPart() as body_2_2_1:
    # Sketch42 → Boss-Extrude22 (new body)
    with BuildSketch(Plane.XY.offset(30.25)):
        with Locations((-11, 101)):
            Rectangle(SKETCH42_W, SKETCH42_H)
    extrude(amount=-BOSS_EXTRUDE22_DEPTH)


with BuildPart() as body_3_3:
    # Sketch44 → Boss-Extrude23 (new body)
    with BuildSketch(Plane.XY.offset(30.25)):
        with Locations((11, 99.5)):
            Rectangle(SKETCH44_W, SKETCH44_H)
    extrude(amount=-BOSS_EXTRUDE23_DEPTH)

    # Sketch46 → Boss-Extrude24 (add)
    with BuildSketch(Plane(origin=(0, 100.5, 0), x_dir=(1, 0, 0), z_dir=(0, 1, 0))):
        with Locations((11, -29.25)):
            Rectangle(SKETCH46_W, SKETCH46_H)
    extrude(amount=BOSS_EXTRUDE24_DEPTH)


with BuildPart() as body_3_2_1:
    add(body_3_2.part)

    add(body_2_2_1.part)  # Boss-Extrude31 merges body 2 2

    add(body_3_3.part)  # Boss-Extrude31 merges body 3 3
    # Sketch63 → Boss-Extrude31 (add)
    with BuildSketch(Plane.XY.offset(20)):
        with BuildLine():
            Line((-13.5, 76), (-11.5, 76))
            Line((-11.5, 76), (-11.5, 78))
            Line((-11.5, 78), (-11.5, 123))
            Line((-11.5, 123), (-11.5, 127.828427125))
            ThreePointArc((-11.5, 127.828427125), (-12.949489743, 126.732050808), (-13.5, 125))
            Line((-13.5, 125), (-13.5, 76))
        make_face()
        with BuildLine():
            Line((11.5, 76), (13.5, 76))
            Line((13.5, 76), (13.5, 125))
            ThreePointArc((13.5, 125), (12.949489743, 126.732050808), (11.5, 127.828427125))
            Line((11.5, 127.828427125), (11.5, 123))
            Line((11.5, 123), (11.5, 78))
            Line((11.5, 78), (11.5, 76))
        make_face()
    extrude(amount=BOSS_EXTRUDE31_DEPTH)

    # Boss-Extrude32 outline → Boss-Extrude32 (add)
    with BuildSketch(Plane.XY.offset(24.25)):
        with BuildLine():
            ThreePointArc((-10.5, 128), (-11.007305936, 127.956795679), (-11.5, 127.828427125))
            Line((-11.5, 127.828427125), (-11.5, 123))
            ThreePointArc((-11.5, 123), (-10.621320344, 125.121320344), (-8.5, 126))
            Line((-8.5, 126), (8.5, 126))
            ThreePointArc((8.5, 126), (10.621320344, 125.121320344), (11.5, 123))
            Line((11.5, 123), (11.5, 127.828427125))
            ThreePointArc((11.5, 127.828427125), (11.007305936, 127.956795679), (10.5, 128))
            Line((10.5, 128), (-10.5, 128))
        make_face()
    extrude(amount=BOSS_EXTRUDE32_DEPTH)

    # Sketch65 → Boss-Extrude33 (add)
    with BuildSketch(Plane.XY.offset(24.25)):
        with Locations((0, 77)):
            Rectangle(SKETCH65_W, SKETCH65_H)
    extrude(amount=BOSS_EXTRUDE33_DEPTH)

    # Fillet5
    fillet5_edges = [body_3_2_1.edges().sort_by_distance(p)[0] for p in [
        (13.5, 76, 21.75),
    ]]
    fillet(fillet5_edges, radius=FILLET5_R)

    # Fillet6
    fillet6_edges = [body_3_2_1.edges().sort_by_distance(p)[0] for p in [
        (-13.5, 76, 21.75),
    ]]
    fillet(fillet6_edges, radius=FILLET6_R)

    # Fillet7
    fillet7_edges = [body_3_2_1.edges().sort_by_distance(p)[0] for p in [
        (-11.5, 78, 22.25),
    ]]
    fillet(fillet7_edges, radius=FILLET7_R)

    # Fillet8
    fillet8_edges = [body_3_2_1.edges().sort_by_distance(p)[0] for p in [
        (11.5, 78, 22.25),
    ]]
    fillet(fillet8_edges, radius=FILLET8_R)

    # Sketch66 → Cut-Extrude33 (cut)
    with BuildSketch(Plane(origin=(0, 103.5, 0), x_dir=(1, 0, 0), z_dir=(0, 1, 0))):
        with Locations((-11, -28.75)):
            Rectangle(SKETCH66_W, SKETCH66_H)
        Polygon((-10.5, -29.25), (-10.5, -30.25), (-11.5, -30.25), align=None)
        Polygon((11.5, -30.25), (10.5, -29.25), (10.5, -30.25), align=None)
        with Locations((11, -28.75)):
            Rectangle(SKETCH66_W, SKETCH66_H)
    extrude(amount=-CUT_EXTRUDE33_DEPTH, mode=Mode.SUBTRACT)

    # Sketch67 → Boss-Extrude34 (add)
    with BuildSketch(Plane(origin=(0, 96, 0), x_dir=(1, 0, 0), z_dir=(0, 1, 0))):
        Polygon((5, 5), (5, 18), (-5, 18), (-5, 20), (-11.5, 20), (-11.5, 5), align=None)
        Polygon((11.5, 20), (5, 20), (5, 18), (5, 5), (11.5, 5), align=None)
    extrude(amount=BOSS_EXTRUDE34_DEPTH)

    # Sketch68 → Boss-Extrude35 (add)
    with BuildSketch(Plane.XZ.offset(-126)):
        with Locations((0, -12.5)):
            Rectangle(SKETCH68_W, SKETCH68_H)
    extrude(amount=BOSS_EXTRUDE35_DEPTH)

    # Sketch71 → Boss-Extrude37 (add)
    with BuildSketch(Plane(origin=(0, 0, -20), x_dir=(-1, 0, 0), z_dir=(0, 0, -1))):
        with BuildLine():
            ThreePointArc((-8.5, 126), (-10.621320344, 125.121320344), (-11.5, 123))
            Line((-11.5, 123), (-8.5, 123))
            Line((-8.5, 123), (-8.5, 126))
        make_face()
        with BuildLine():
            Line((8.5, 123), (11.5, 123))
            ThreePointArc((11.5, 123), (10.621320344, 125.121320344), (8.5, 126))
            Line((8.5, 126), (8.5, 123))
        make_face()
    extrude(amount=-BOSS_EXTRUDE37_DEPTH)

    # Sketch72 → Boss-Extrude38 (add)
    with BuildSketch(Plane.XZ.offset(-123)):
        with Locations((-10, -12.5)):
            Rectangle(SKETCH72_W, SKETCH72_H)
        with Locations((10, -12.5)):
            Rectangle(SKETCH72_W, SKETCH72_H)
    extrude(amount=BOSS_EXTRUDE38_DEPTH)


solid = body_3_2_1.part
